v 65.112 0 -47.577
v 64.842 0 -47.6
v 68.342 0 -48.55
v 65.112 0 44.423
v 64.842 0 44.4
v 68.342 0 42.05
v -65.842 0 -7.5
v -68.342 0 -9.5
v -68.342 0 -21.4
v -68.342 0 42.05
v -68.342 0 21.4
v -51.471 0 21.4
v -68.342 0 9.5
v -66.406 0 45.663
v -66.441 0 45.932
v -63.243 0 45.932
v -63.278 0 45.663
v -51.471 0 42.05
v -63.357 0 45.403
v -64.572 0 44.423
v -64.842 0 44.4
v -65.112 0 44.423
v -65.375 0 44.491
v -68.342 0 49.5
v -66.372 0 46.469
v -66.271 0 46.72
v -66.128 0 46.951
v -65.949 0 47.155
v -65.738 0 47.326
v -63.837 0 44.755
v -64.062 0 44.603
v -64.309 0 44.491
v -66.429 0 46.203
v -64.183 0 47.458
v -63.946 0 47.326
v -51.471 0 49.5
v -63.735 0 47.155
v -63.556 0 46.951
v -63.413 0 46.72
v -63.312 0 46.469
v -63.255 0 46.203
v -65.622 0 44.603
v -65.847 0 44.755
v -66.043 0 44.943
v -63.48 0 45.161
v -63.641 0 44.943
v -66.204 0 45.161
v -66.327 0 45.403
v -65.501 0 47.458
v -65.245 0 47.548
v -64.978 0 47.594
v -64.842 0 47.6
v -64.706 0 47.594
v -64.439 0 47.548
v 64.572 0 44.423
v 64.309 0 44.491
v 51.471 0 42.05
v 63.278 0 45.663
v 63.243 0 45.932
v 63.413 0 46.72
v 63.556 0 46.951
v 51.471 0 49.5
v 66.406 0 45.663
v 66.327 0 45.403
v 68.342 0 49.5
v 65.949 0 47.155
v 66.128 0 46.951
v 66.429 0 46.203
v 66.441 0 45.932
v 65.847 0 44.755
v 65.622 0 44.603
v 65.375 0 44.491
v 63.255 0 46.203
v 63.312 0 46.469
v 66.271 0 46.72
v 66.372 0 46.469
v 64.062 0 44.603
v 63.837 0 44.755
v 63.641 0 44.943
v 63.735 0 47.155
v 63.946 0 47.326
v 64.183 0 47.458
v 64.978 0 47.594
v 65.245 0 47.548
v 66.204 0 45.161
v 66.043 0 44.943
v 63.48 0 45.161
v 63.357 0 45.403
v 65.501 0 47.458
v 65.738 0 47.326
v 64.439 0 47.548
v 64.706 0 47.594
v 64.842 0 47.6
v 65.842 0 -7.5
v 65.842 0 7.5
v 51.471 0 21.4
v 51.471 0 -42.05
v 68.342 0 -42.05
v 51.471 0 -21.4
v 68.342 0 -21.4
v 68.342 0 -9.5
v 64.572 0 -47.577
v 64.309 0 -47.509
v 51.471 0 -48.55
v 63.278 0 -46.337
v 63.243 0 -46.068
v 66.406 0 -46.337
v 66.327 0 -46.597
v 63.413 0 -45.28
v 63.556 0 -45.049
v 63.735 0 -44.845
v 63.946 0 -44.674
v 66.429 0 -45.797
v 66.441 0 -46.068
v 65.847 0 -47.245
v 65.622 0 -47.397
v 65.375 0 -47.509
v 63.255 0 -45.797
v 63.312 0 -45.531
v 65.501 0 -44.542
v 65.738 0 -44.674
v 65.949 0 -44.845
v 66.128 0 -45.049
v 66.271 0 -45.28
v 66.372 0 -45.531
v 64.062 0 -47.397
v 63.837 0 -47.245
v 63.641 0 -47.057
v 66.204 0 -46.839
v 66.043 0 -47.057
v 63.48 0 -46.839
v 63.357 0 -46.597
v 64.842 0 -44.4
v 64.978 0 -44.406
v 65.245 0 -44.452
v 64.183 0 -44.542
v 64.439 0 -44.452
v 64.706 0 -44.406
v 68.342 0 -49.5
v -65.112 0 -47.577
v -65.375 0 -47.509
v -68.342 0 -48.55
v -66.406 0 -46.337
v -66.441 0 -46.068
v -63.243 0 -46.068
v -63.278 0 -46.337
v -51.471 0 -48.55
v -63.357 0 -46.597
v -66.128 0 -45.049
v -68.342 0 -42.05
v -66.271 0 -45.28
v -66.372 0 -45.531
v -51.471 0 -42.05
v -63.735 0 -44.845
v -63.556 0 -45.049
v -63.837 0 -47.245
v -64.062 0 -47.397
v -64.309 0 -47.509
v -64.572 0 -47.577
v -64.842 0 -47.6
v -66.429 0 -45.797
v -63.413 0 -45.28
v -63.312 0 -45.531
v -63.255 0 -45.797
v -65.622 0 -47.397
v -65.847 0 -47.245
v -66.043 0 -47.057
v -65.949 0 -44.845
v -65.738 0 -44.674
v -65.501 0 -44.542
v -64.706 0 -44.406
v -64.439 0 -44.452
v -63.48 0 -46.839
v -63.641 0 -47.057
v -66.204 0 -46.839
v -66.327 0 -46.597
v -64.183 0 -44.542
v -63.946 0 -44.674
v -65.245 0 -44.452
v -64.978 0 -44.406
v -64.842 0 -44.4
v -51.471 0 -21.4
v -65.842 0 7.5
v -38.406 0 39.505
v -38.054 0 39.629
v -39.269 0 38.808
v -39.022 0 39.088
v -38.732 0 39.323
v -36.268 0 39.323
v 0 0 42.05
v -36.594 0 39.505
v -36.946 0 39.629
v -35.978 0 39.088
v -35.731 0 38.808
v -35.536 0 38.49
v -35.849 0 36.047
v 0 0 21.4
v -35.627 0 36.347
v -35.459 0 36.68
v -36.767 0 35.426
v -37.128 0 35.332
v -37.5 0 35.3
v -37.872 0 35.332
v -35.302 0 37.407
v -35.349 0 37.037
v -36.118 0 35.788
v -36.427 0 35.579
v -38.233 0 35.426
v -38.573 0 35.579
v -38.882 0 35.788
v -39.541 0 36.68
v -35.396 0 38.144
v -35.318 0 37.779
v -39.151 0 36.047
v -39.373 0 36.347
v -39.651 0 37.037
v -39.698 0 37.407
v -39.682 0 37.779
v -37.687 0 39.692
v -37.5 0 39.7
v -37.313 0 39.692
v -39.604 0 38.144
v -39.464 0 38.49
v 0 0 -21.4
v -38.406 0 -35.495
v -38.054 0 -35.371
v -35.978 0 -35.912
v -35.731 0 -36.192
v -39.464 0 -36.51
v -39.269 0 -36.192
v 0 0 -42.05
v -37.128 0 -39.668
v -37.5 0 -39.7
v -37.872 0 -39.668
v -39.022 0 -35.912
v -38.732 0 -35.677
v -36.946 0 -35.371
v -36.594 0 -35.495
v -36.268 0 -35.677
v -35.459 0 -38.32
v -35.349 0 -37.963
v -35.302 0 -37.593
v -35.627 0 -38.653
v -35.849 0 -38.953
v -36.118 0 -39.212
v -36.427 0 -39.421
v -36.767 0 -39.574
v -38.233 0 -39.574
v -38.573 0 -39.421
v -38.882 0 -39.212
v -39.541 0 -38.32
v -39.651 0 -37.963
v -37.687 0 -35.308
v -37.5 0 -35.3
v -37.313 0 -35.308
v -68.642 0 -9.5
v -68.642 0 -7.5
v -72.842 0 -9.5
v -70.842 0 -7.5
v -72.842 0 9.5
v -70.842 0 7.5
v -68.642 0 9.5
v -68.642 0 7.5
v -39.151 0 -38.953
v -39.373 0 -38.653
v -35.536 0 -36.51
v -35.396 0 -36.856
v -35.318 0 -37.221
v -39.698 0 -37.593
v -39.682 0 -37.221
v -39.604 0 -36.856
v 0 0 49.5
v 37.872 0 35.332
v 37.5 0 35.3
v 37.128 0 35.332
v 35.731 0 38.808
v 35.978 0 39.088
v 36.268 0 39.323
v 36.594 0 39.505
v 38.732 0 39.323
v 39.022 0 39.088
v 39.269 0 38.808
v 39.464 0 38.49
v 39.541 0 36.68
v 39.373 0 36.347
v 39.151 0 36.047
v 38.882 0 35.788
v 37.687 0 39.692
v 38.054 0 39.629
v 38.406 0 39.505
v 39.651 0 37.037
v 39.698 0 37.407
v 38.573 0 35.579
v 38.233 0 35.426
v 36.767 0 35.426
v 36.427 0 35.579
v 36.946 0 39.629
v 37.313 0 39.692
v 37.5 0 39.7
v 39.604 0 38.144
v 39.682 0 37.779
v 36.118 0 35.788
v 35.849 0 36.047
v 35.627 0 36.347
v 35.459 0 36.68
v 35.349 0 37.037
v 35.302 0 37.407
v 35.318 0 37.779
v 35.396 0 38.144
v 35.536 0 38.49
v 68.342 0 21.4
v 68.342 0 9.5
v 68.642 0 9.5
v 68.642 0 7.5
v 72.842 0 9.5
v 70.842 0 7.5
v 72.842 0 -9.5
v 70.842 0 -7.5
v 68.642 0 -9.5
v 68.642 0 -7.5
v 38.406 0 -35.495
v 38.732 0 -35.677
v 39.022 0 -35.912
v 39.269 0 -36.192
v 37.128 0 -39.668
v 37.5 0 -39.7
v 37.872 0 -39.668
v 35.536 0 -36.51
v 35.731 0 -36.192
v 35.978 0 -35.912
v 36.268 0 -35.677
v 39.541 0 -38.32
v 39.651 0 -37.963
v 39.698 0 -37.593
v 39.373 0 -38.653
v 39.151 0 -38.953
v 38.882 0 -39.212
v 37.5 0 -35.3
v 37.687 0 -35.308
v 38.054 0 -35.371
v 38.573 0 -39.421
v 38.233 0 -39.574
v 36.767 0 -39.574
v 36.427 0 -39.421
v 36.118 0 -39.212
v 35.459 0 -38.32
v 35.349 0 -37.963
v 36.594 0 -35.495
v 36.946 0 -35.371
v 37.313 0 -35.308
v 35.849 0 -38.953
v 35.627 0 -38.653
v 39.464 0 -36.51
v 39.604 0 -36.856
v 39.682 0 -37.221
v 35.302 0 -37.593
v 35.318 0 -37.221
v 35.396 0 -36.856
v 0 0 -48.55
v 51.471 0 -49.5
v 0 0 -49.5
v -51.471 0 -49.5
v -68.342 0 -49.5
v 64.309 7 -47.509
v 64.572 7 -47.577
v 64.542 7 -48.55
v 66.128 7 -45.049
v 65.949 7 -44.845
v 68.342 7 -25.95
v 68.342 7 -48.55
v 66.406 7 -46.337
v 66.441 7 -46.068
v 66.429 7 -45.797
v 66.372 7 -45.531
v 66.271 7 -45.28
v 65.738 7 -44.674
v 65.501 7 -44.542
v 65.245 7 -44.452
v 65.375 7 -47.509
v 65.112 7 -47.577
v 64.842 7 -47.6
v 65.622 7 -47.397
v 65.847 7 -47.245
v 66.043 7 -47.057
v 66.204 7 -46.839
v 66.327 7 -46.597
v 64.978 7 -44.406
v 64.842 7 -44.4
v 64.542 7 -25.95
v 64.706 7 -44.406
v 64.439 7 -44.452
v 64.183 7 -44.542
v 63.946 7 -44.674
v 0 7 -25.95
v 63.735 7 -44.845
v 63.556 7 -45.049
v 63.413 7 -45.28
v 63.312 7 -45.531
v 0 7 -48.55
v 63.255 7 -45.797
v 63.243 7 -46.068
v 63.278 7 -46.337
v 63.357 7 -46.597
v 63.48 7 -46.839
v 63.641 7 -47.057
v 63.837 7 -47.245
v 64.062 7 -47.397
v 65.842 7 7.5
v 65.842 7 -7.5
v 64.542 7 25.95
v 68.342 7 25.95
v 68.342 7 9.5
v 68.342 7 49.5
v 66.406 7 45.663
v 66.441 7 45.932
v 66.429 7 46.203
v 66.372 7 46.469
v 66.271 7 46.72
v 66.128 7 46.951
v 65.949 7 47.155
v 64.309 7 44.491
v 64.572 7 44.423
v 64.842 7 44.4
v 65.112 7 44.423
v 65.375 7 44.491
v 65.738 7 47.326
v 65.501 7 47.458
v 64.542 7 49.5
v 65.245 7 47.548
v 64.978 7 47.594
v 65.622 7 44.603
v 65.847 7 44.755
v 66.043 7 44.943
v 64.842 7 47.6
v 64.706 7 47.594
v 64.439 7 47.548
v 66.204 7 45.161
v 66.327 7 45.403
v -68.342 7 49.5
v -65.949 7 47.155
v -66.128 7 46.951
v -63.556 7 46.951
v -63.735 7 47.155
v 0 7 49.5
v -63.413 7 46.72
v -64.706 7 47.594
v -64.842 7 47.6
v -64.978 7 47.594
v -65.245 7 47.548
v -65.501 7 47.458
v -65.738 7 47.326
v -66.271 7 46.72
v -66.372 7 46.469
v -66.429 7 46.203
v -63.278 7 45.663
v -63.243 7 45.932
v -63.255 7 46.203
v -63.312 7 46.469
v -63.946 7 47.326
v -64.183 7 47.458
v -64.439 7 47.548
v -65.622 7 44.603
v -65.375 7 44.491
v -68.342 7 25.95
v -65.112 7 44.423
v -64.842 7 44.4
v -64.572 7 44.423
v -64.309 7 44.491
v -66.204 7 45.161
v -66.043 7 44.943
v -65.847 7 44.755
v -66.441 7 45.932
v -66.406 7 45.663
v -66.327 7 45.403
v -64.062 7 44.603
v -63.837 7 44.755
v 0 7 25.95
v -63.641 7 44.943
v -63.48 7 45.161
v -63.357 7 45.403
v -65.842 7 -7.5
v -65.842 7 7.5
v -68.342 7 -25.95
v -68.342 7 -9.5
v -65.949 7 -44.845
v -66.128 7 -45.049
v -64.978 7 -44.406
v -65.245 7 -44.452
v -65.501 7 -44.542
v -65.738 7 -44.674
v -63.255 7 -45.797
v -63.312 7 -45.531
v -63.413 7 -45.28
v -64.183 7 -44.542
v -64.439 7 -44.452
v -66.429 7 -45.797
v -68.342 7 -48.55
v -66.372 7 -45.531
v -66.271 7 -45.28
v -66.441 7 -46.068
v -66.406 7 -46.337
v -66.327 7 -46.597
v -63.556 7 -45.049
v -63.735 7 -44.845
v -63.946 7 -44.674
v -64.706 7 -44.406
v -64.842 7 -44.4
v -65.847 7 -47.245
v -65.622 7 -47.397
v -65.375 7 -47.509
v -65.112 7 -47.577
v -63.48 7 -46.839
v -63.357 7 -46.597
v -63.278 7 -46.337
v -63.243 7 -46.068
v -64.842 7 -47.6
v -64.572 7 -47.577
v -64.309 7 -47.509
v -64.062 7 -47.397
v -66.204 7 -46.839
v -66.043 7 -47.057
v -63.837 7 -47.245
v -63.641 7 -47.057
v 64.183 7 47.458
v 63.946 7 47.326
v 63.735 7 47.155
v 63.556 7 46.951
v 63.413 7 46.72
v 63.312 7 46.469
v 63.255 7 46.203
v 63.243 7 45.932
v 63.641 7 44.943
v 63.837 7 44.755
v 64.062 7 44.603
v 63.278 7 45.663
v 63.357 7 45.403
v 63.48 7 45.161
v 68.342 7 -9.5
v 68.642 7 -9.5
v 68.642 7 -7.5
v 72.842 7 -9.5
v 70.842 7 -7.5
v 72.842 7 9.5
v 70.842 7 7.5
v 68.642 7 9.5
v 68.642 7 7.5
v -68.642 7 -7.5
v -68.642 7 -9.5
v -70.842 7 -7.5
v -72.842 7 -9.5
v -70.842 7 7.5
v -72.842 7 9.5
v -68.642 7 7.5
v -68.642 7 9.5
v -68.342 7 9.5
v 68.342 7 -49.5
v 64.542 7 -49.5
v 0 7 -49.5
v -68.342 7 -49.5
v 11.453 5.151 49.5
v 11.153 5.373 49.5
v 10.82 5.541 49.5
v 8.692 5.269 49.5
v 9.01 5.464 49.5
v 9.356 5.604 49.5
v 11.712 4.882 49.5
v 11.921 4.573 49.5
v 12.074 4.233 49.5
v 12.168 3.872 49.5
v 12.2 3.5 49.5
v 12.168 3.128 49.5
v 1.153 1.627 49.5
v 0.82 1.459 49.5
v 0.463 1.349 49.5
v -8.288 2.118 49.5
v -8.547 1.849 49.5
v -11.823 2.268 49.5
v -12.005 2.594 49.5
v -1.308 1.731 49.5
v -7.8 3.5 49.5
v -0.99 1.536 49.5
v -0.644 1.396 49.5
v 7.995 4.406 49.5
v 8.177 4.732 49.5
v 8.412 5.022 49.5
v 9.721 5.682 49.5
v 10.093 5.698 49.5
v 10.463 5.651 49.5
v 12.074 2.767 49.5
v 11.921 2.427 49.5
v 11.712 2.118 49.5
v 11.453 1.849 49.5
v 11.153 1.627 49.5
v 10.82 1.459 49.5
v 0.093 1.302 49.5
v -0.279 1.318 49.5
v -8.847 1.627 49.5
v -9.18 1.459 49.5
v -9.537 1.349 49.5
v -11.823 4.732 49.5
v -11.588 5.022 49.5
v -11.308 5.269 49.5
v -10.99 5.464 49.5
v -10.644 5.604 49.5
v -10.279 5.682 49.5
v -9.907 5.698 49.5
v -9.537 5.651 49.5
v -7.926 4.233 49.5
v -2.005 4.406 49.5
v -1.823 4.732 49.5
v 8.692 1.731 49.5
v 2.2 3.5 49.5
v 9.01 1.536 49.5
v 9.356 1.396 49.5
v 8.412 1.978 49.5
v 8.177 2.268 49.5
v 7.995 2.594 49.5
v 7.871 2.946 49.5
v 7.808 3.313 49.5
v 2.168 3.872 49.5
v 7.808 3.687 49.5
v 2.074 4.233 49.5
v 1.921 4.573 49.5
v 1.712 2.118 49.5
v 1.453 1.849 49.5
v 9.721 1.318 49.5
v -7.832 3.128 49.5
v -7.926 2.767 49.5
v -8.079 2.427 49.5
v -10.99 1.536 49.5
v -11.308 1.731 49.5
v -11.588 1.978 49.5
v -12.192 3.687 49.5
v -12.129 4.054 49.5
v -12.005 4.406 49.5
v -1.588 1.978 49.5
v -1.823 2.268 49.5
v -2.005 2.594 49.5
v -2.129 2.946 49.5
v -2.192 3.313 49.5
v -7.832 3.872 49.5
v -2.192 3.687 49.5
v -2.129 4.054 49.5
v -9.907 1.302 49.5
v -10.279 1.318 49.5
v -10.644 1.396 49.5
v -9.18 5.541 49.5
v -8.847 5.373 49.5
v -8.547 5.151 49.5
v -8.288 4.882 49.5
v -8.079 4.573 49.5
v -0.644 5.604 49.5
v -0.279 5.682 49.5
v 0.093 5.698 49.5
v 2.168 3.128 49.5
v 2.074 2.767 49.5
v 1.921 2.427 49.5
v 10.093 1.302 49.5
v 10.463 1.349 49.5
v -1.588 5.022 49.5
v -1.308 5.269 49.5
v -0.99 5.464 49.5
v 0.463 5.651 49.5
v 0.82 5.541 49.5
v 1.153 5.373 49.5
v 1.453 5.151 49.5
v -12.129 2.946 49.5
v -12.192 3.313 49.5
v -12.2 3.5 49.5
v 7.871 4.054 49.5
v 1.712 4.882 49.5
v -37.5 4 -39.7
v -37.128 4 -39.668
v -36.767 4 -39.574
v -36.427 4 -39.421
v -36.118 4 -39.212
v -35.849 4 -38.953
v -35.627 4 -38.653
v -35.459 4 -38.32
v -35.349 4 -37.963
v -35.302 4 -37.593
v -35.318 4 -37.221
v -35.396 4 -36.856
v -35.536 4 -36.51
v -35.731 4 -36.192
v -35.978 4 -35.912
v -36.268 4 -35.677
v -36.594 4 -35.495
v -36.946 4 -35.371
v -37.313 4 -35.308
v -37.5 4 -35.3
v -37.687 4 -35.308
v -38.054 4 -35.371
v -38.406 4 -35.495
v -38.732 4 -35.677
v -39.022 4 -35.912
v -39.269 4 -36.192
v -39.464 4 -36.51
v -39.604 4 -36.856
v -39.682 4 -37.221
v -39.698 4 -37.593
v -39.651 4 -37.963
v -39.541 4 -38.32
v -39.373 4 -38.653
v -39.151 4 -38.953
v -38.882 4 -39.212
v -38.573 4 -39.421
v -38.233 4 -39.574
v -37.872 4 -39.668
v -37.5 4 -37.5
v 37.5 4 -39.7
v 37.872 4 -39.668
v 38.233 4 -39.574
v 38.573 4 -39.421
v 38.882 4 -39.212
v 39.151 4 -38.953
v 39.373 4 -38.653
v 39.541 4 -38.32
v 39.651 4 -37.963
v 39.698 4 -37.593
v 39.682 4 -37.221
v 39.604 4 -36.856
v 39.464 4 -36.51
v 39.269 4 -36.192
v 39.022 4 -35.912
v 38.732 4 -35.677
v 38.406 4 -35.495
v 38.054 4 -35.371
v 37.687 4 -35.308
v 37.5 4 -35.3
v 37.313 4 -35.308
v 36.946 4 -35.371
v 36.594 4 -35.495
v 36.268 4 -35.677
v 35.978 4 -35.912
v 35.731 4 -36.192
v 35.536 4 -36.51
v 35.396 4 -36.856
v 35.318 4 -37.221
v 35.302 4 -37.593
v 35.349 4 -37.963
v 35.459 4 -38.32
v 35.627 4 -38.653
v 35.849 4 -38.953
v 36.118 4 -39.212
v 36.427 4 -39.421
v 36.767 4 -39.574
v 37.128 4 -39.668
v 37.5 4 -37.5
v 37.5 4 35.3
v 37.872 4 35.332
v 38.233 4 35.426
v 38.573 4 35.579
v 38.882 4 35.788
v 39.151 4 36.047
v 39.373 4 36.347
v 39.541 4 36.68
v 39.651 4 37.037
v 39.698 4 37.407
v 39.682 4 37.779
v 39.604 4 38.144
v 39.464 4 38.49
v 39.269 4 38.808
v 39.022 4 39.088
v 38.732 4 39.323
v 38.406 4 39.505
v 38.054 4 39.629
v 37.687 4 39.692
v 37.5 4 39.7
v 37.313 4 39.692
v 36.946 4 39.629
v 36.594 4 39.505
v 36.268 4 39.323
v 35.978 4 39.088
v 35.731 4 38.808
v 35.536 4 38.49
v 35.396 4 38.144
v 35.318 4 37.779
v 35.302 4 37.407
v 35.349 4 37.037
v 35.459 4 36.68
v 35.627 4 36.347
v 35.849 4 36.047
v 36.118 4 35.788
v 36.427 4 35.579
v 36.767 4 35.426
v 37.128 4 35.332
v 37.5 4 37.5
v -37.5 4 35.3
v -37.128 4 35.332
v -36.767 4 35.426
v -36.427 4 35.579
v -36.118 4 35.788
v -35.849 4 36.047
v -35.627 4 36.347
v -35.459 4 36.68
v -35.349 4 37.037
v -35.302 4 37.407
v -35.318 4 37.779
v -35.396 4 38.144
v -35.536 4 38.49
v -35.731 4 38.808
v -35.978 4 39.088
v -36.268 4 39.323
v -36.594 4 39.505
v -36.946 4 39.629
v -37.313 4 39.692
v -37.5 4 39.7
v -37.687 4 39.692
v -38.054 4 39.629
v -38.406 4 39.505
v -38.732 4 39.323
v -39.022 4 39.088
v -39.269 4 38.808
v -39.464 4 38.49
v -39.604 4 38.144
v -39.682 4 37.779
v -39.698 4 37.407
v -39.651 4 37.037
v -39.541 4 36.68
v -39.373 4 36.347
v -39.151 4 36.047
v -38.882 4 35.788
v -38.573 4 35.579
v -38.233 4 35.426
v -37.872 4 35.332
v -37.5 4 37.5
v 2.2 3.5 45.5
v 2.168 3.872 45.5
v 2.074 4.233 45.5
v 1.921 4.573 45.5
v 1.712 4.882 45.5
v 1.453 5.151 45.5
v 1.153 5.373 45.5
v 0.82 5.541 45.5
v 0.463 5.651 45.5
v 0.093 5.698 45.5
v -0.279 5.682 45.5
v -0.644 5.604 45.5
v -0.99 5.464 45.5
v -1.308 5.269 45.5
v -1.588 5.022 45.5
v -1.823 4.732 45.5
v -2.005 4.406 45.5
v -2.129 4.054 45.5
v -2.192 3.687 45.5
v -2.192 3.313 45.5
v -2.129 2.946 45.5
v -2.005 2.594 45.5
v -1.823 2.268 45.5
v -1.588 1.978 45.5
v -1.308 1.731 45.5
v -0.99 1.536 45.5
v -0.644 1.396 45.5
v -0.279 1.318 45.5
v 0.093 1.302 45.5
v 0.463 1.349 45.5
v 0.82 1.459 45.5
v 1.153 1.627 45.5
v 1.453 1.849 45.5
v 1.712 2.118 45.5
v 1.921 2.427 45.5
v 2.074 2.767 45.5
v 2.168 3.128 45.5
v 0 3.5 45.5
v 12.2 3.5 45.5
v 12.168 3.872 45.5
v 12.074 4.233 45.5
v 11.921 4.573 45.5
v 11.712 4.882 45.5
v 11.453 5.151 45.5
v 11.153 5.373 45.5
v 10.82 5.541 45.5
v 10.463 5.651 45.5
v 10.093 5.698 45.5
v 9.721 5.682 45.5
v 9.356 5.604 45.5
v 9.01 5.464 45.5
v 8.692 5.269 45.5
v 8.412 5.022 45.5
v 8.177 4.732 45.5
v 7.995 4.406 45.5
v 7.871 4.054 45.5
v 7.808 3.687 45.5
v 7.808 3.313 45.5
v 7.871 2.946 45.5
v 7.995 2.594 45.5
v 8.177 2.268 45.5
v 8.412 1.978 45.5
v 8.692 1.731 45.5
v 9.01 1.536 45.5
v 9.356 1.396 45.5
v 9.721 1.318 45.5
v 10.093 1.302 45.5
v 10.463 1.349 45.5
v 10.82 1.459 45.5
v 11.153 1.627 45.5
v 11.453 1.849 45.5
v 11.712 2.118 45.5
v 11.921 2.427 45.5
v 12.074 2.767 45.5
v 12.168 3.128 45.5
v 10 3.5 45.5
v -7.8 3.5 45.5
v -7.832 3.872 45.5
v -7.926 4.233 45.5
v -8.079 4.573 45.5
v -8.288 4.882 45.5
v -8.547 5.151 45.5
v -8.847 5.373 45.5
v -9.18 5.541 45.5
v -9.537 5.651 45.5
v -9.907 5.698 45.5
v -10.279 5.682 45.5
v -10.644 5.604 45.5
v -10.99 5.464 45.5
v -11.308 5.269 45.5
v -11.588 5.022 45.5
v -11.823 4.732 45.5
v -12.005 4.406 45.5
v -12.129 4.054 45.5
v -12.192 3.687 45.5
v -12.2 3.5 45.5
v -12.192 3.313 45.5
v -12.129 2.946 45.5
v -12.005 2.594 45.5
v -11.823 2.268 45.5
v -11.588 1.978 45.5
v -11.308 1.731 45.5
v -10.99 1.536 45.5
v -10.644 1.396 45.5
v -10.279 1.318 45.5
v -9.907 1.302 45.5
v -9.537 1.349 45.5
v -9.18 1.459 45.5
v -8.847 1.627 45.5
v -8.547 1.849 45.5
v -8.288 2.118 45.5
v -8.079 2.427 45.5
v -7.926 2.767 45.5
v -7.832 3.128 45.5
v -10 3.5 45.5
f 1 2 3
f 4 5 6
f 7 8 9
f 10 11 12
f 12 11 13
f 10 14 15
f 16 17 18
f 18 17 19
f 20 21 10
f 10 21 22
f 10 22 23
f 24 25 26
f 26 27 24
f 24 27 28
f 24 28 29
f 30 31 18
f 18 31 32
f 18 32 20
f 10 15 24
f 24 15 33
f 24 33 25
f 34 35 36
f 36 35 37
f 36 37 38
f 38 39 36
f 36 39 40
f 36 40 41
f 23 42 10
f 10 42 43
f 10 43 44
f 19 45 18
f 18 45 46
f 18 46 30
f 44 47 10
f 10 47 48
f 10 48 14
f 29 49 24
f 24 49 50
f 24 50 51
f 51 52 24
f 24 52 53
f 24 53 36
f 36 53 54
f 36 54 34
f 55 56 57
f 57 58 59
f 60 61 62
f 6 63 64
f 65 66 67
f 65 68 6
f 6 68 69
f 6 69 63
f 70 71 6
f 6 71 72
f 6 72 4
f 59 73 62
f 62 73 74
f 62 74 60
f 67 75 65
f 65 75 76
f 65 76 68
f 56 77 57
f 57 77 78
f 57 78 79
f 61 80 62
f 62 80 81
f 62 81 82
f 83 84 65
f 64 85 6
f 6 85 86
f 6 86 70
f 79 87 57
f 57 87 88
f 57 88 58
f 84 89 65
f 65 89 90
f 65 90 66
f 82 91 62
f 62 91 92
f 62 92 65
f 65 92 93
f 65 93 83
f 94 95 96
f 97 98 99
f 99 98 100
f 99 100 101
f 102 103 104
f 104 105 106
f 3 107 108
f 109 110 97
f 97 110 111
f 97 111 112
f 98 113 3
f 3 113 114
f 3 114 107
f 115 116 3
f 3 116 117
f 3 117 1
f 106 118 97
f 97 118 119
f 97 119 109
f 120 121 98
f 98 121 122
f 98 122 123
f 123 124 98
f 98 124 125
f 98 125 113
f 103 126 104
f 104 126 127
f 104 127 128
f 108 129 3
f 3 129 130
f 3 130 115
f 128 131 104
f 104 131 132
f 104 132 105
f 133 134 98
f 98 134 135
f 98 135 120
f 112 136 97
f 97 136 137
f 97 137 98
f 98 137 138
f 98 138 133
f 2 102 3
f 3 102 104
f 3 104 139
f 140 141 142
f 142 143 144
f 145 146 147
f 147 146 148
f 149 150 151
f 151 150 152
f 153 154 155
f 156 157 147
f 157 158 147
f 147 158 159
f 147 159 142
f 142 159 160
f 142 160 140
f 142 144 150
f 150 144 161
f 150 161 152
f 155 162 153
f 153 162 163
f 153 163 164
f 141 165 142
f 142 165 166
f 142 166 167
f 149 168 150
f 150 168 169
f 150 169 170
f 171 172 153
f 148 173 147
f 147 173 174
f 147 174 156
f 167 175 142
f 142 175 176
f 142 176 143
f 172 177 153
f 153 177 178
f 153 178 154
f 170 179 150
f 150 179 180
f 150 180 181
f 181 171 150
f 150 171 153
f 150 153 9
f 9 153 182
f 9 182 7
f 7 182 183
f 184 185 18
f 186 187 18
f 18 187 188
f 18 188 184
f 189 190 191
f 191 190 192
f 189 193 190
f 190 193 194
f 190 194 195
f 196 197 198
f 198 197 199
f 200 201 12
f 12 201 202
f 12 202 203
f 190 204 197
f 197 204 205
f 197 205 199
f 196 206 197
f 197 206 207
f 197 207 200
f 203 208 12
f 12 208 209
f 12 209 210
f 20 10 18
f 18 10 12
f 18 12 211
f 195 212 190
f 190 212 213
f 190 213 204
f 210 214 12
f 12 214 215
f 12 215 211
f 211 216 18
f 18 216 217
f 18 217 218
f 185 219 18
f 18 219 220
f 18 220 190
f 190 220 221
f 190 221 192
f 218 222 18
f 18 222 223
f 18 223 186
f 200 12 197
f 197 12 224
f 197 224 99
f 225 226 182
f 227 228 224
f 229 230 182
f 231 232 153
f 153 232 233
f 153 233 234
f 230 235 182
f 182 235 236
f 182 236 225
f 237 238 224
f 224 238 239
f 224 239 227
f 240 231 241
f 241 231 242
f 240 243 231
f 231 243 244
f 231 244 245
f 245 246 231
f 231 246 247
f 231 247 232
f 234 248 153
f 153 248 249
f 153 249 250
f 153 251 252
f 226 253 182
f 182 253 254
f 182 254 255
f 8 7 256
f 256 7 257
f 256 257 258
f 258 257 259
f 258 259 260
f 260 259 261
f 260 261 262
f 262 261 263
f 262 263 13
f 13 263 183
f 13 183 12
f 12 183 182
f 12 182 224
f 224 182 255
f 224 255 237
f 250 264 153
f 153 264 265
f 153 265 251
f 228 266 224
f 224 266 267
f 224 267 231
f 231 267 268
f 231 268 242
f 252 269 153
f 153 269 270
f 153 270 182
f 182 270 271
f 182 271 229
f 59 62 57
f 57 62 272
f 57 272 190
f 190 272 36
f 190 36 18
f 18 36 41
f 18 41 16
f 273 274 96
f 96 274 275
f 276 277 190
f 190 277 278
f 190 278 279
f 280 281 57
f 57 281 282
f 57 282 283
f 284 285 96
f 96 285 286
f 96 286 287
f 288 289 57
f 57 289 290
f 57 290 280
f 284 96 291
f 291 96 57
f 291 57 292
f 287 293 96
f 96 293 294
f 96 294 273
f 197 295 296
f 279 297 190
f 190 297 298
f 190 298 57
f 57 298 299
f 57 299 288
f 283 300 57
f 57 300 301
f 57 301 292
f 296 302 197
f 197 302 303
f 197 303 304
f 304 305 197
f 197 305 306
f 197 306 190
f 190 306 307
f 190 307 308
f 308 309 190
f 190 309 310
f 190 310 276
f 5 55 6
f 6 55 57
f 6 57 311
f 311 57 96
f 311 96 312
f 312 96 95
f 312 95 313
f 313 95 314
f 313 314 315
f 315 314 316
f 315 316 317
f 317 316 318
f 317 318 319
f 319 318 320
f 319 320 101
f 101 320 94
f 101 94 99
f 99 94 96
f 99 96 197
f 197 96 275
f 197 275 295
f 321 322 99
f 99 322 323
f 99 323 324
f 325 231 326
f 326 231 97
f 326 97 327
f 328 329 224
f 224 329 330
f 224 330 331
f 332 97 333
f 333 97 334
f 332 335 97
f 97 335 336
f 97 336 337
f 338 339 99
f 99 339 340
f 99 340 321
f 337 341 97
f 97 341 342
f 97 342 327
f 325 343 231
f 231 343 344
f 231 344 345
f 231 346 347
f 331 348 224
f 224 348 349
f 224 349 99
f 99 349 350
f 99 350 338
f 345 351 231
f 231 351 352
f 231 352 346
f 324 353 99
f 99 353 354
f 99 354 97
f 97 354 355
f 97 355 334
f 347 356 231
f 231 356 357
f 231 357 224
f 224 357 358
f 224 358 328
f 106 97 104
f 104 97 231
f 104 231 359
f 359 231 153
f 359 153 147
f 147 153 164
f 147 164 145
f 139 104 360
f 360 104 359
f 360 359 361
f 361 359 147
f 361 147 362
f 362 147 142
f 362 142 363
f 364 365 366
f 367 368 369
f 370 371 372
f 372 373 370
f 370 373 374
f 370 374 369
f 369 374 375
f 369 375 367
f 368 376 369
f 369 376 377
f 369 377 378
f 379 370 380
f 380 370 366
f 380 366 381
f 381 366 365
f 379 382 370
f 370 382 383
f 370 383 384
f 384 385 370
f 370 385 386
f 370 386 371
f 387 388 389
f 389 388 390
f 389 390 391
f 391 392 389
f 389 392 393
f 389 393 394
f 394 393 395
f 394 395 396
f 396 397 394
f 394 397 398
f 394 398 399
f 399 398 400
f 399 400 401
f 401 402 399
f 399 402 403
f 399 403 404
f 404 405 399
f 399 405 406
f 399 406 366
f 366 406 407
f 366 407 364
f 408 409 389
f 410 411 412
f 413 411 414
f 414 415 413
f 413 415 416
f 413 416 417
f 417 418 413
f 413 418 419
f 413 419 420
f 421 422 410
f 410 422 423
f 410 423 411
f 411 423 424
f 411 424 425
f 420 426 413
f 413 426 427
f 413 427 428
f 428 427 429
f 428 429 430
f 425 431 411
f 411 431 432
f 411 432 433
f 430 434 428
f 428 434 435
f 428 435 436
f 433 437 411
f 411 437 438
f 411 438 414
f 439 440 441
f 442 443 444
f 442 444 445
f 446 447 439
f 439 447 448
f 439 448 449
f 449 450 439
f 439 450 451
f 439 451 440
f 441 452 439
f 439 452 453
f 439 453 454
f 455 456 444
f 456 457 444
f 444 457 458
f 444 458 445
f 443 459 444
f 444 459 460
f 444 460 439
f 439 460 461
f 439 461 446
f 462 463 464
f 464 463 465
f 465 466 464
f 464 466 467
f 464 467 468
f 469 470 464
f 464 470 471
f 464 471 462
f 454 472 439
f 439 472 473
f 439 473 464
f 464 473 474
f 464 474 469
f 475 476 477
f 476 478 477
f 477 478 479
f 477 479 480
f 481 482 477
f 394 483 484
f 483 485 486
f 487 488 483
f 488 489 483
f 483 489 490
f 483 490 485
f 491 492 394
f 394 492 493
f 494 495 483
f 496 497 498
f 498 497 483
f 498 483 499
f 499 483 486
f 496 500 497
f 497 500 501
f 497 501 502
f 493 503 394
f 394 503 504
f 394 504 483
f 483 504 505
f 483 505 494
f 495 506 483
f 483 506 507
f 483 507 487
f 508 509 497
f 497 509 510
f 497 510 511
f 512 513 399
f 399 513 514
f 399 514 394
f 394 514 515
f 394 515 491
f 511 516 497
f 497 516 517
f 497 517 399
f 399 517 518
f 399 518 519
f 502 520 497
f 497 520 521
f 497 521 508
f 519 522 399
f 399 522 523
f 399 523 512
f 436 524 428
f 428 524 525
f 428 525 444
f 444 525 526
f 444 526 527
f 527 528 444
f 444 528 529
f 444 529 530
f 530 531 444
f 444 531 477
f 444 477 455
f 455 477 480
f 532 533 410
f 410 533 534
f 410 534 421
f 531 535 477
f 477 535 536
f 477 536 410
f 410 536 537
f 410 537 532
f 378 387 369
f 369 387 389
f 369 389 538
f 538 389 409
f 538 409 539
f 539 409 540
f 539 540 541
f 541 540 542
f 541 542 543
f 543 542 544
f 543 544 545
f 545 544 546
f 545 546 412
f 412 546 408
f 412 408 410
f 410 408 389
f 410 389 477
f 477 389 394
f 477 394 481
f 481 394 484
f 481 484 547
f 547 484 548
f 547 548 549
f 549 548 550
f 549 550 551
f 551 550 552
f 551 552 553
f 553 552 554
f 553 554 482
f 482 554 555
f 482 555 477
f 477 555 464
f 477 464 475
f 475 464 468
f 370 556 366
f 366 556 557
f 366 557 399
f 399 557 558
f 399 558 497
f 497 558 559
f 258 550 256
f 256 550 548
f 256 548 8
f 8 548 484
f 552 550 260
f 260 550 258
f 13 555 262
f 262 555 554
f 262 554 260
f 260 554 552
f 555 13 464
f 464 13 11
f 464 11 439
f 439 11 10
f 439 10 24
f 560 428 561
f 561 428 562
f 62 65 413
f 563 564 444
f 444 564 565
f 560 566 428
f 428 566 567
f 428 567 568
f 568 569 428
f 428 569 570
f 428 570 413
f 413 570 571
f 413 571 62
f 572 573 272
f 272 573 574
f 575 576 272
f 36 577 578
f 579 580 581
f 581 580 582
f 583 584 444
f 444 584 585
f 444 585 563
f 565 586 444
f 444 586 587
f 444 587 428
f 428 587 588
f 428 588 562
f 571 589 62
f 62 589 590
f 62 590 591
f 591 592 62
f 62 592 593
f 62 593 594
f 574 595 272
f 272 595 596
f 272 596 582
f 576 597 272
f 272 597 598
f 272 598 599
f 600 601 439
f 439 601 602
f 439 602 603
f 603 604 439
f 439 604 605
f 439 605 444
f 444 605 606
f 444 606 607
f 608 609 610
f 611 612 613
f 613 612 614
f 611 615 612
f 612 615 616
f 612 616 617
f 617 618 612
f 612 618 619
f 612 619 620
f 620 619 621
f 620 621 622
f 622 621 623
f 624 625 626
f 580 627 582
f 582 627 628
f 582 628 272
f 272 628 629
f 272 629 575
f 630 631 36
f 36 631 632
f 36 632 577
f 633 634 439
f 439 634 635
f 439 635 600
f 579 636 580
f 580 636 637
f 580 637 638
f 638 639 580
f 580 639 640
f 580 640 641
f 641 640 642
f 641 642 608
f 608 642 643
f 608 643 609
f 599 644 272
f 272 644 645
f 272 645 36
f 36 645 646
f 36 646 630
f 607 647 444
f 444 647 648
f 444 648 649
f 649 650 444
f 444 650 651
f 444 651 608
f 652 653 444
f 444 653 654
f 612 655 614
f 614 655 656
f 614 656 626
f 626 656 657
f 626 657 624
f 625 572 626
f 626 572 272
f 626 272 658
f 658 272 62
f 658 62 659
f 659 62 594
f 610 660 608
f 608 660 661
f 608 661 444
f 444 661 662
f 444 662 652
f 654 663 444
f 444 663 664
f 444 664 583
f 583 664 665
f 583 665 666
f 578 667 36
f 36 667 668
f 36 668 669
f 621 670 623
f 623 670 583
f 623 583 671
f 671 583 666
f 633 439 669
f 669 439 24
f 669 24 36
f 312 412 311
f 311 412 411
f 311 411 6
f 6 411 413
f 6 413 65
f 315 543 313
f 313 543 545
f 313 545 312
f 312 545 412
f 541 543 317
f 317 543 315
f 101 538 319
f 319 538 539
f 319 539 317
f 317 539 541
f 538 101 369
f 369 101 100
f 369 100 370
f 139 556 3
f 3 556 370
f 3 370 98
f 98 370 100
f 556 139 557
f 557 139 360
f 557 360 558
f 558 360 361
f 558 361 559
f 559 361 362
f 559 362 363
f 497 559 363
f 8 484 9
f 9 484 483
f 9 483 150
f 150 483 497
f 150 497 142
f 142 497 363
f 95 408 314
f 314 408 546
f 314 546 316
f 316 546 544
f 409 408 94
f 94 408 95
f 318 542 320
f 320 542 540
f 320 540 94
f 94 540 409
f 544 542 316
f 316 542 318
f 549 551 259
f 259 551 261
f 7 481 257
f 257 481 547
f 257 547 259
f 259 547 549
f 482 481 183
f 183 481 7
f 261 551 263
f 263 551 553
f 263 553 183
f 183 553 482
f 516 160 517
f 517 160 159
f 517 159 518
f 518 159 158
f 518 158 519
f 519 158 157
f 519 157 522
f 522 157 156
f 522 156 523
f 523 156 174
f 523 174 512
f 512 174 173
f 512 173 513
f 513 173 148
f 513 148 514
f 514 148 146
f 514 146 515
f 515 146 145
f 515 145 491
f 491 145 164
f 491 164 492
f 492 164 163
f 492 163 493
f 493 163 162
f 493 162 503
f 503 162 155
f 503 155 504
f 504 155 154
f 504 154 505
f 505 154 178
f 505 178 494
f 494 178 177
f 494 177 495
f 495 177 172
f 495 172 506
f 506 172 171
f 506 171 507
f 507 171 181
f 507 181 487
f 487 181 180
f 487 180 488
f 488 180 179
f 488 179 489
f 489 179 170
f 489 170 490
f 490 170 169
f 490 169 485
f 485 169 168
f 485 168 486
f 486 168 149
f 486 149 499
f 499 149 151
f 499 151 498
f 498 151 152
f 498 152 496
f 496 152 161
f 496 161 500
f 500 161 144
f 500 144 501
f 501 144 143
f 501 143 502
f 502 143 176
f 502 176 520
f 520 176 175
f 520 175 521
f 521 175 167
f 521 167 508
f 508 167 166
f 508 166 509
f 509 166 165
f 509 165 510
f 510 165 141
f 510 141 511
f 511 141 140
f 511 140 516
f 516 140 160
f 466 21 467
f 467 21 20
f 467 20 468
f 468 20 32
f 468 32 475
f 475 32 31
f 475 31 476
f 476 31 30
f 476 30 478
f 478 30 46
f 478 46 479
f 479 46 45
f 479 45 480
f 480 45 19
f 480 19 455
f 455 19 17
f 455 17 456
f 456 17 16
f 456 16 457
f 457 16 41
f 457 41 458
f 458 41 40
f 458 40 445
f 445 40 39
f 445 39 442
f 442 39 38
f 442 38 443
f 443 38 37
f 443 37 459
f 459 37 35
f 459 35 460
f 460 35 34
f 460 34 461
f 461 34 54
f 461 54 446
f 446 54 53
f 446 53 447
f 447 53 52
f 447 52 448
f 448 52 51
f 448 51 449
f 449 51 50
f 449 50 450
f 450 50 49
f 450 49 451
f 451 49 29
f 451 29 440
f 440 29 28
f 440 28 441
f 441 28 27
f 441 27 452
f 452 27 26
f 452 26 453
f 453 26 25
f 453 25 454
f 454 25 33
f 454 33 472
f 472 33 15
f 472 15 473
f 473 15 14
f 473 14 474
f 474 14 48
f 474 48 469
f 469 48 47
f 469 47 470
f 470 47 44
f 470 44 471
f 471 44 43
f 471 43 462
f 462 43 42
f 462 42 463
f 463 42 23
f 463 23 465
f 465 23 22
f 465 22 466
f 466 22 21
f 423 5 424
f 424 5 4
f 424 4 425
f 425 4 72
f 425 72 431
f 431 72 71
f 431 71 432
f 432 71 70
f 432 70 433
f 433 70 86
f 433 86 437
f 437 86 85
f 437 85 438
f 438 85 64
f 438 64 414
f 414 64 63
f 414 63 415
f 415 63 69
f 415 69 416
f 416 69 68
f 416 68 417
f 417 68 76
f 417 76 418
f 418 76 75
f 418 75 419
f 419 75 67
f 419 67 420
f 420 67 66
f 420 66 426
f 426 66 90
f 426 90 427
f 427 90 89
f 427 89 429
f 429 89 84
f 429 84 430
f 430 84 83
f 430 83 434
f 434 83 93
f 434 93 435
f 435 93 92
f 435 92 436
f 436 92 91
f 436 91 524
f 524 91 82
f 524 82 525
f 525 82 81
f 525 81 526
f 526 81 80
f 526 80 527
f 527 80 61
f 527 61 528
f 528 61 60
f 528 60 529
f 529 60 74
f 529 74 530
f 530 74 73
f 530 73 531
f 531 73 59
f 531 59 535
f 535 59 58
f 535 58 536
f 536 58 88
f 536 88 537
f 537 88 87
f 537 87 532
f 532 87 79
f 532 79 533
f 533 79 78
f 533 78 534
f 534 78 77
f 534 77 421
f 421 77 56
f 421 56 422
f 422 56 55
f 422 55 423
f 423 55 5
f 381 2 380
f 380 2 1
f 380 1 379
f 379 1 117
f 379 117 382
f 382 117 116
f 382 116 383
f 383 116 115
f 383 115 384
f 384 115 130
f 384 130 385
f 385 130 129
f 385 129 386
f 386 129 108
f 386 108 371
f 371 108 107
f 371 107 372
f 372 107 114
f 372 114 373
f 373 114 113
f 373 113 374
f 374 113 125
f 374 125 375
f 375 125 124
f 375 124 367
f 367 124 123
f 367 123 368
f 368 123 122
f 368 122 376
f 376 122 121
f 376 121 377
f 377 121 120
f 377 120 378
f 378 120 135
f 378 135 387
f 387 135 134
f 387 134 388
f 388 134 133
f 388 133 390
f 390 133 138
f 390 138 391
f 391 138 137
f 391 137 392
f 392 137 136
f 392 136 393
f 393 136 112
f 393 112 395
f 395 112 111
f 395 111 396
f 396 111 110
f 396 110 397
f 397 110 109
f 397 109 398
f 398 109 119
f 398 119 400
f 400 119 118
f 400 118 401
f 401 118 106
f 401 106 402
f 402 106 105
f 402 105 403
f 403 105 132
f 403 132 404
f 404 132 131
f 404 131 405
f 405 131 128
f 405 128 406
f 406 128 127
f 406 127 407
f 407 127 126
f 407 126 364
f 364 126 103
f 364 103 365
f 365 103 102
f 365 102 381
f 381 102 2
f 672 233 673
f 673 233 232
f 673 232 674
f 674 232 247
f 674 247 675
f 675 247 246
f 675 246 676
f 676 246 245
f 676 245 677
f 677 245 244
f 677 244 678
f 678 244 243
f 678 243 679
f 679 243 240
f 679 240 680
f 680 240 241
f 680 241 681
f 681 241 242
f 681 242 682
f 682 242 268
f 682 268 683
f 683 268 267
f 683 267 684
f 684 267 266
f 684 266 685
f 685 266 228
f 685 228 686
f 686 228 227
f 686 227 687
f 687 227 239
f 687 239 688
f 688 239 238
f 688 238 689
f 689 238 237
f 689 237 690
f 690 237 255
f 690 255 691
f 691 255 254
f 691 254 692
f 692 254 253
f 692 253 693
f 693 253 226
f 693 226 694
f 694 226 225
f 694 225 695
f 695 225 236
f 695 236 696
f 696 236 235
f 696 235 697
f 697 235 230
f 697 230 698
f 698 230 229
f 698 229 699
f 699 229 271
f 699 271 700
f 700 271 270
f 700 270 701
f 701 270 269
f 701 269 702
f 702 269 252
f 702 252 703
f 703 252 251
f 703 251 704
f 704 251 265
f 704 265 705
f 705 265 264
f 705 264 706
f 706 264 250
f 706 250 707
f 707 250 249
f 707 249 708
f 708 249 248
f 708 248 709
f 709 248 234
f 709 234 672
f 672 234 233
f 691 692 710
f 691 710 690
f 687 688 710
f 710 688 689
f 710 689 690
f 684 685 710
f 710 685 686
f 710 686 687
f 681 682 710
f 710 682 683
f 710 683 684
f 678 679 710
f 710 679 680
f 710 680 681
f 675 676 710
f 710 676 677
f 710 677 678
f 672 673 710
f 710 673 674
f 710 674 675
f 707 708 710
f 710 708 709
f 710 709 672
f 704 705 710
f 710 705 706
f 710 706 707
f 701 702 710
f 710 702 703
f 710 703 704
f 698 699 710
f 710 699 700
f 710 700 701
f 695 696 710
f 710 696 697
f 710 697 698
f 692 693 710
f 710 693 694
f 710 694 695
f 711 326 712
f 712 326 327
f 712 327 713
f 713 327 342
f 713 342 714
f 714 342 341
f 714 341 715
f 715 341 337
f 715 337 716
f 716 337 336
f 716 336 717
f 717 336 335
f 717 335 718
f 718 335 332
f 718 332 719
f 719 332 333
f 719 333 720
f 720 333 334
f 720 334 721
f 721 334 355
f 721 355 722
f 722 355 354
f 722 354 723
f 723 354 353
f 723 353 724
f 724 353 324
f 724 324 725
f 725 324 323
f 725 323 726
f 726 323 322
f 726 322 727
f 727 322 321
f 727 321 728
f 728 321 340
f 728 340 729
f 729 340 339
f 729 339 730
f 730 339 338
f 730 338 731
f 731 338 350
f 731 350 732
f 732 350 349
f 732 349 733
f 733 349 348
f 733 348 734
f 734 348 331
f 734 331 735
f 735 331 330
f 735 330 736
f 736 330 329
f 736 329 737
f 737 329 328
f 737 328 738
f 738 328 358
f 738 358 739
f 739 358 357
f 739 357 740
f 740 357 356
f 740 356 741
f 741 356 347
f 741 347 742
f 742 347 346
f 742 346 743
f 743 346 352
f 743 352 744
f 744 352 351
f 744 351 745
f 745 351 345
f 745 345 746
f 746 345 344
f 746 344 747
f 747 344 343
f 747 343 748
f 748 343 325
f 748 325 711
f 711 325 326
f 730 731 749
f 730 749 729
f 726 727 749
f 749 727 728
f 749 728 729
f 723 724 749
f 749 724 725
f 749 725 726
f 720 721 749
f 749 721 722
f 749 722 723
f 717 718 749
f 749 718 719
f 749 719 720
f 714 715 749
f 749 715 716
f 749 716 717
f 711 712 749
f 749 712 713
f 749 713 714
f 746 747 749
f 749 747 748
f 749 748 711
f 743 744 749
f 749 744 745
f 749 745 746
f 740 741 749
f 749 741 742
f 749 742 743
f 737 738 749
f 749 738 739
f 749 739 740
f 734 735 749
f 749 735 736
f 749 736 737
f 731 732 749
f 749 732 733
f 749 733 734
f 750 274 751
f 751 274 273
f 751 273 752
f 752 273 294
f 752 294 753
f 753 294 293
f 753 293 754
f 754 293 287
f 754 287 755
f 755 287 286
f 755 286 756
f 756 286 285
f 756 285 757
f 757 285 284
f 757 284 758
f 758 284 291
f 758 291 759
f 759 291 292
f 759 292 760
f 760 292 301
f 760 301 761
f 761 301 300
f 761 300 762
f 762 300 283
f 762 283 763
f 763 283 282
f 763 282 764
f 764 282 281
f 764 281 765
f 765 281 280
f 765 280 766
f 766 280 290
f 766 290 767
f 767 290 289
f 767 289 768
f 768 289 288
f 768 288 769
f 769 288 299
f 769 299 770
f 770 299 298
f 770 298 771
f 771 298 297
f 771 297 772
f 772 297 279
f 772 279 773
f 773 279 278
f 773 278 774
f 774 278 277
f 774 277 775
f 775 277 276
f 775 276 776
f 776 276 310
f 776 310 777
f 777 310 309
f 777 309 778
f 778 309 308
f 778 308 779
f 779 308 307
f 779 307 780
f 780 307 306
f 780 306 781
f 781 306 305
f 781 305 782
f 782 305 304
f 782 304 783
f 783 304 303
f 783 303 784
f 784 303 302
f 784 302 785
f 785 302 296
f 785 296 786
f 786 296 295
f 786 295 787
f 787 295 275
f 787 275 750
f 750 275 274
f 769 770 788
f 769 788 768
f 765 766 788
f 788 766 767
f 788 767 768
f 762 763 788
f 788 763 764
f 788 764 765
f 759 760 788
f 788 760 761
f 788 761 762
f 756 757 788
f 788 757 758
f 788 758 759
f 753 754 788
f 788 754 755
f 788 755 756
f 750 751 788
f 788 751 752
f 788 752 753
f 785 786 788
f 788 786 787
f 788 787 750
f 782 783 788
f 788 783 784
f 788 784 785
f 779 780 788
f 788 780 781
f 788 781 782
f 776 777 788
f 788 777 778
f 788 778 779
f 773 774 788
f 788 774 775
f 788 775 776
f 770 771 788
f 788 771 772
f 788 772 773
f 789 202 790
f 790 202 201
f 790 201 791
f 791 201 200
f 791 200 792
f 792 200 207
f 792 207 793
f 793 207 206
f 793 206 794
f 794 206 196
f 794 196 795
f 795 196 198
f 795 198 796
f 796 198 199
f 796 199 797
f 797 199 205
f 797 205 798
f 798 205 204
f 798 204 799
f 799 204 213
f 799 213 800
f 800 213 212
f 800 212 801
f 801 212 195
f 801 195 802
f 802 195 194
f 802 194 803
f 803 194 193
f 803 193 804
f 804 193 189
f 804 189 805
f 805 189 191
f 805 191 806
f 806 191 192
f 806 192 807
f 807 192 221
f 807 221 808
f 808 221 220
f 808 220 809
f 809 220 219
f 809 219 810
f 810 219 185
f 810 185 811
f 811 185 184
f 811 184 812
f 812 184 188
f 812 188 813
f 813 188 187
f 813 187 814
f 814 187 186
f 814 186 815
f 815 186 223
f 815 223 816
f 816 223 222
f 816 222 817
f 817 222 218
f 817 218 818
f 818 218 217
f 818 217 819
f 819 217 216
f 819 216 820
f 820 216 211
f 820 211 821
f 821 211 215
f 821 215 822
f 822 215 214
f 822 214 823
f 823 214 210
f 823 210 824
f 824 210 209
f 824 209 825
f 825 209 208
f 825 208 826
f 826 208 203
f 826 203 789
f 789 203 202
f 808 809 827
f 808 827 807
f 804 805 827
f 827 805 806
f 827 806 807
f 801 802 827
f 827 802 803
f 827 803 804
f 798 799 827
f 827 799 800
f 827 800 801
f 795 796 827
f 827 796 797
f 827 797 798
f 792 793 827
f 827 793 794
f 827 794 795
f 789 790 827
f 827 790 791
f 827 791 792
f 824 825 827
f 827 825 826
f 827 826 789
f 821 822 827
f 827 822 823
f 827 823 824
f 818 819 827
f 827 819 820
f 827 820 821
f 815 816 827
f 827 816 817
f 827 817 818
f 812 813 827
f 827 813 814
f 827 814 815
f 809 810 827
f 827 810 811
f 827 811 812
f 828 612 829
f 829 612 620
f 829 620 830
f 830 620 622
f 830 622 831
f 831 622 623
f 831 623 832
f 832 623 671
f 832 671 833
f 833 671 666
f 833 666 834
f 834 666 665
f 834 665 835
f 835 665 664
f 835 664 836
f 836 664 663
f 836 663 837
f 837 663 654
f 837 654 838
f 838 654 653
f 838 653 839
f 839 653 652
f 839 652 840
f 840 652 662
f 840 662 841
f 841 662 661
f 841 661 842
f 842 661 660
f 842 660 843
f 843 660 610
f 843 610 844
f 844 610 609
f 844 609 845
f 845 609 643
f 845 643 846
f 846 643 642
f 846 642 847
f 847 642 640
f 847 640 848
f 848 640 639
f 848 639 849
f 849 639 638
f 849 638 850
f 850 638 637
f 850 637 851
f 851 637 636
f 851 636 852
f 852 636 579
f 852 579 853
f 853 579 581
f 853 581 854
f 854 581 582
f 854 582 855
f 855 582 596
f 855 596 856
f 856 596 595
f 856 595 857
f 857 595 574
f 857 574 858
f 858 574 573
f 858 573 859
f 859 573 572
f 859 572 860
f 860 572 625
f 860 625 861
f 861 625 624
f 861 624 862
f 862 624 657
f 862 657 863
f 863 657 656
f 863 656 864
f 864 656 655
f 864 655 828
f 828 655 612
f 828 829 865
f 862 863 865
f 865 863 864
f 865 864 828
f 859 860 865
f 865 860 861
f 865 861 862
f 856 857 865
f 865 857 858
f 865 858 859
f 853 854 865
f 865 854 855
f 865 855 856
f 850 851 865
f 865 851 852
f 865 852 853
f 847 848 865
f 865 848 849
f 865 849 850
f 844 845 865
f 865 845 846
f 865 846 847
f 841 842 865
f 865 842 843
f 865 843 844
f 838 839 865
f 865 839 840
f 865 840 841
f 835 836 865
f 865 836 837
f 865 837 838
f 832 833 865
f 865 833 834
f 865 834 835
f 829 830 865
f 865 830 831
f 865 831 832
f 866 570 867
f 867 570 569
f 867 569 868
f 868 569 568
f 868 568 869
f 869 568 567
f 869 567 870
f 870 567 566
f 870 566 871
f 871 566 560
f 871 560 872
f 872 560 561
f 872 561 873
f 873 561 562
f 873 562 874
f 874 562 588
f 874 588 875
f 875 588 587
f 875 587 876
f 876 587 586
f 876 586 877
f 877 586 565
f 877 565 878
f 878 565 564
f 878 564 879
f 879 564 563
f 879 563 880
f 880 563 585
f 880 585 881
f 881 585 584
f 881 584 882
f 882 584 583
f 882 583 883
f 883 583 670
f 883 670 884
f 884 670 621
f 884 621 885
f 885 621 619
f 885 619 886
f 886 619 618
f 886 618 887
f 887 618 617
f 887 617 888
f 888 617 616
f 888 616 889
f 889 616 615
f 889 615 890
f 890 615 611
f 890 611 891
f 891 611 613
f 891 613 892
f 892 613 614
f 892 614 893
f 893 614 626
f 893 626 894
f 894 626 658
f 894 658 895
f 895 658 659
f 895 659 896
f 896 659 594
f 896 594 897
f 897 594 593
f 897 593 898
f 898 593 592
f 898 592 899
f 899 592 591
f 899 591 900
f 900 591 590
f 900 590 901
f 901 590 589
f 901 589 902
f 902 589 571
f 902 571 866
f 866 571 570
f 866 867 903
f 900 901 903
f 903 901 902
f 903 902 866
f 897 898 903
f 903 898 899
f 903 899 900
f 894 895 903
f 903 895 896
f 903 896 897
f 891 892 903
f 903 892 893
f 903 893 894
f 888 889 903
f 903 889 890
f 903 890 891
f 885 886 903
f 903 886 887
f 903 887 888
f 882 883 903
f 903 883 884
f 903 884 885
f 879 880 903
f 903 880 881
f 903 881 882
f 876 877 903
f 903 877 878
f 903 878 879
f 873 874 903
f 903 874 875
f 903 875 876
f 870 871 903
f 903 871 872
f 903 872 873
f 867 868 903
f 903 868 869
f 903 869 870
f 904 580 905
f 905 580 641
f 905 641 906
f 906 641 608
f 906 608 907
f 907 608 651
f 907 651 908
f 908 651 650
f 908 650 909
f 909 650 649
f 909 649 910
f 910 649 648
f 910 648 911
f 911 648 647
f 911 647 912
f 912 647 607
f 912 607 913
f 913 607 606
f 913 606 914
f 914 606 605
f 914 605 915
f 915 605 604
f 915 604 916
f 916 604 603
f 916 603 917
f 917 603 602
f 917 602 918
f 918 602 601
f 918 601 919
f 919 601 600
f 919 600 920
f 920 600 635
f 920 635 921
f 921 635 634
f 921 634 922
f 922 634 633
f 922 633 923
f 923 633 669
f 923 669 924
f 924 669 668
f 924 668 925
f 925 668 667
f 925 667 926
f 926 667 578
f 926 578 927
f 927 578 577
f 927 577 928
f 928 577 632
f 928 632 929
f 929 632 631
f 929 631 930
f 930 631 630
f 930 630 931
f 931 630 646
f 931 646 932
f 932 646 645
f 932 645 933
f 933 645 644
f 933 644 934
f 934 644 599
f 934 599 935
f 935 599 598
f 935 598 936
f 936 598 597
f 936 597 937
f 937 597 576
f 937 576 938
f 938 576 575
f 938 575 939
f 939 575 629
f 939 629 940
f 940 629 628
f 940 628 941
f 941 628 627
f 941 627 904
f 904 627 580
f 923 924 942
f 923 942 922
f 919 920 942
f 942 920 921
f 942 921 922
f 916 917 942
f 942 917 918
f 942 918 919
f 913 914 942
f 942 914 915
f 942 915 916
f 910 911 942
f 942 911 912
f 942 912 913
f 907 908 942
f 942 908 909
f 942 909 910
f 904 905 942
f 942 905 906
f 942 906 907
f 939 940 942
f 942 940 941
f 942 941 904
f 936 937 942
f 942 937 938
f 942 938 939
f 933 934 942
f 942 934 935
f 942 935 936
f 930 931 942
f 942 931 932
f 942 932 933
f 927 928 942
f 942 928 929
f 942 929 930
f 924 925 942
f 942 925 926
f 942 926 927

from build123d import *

# Parameters (mm, degrees)
SKETCH1_W           = 5
SKETCH1_H           = 15
BOSS_EXTRUDE1_DEPTH = 7
CUT_EXTRUDE3_REACH  = 90.347
SKETCH3_R           = 1.6
SKETCH3_4_R         = 2.2
CUT_EXTRUDE4_DEPTH  = 4
SKETCH4_R           = 2.2
CUT_EXTRUDE5_DEPTH  = 4


with BuildPart() as part:
    # Sketch1 → Boss-Extrude1 (new body)
    with BuildSketch(Plane(origin=(0, 0, 0), x_dir=(1, 0, 0), z_dir=(0, 1, 0))):
        Polygon((-68.342017383, -9.5), (-68.342017383, -49.5), (68.342017383, -49.5), (68.342017383, -9.5), (72.842017383, -9.5), (72.842017383, 9.5), (68.342017383, 9.5), (68.342017383, 49.5), (-68.342017383, 49.5), (-68.342017383, 9.5), (-72.842017383, 9.5), (-72.842017383, -9.5), align=None)
        with Locations((-68.342017383, 0)):
            Rectangle(SKETCH1_W, SKETCH1_H, mode=Mode.SUBTRACT)
        with Locations((68.342017383, 0)):
            Rectangle(SKETCH1_W, SKETCH1_H, mode=Mode.SUBTRACT)
    extrude(amount=BOSS_EXTRUDE1_DEPTH)

    # Sketch3 → Cut-Extrude3 (cut, up to next)
    with BuildSketch(Plane(origin=(0, 0, 0), x_dir=(1, 0, 0), z_dir=(0, 1, 0)), mode=Mode.PRIVATE) as cut_extrude3_sk1:
        with Locations((64.842017383, -46)):
            Circle(SKETCH3_R)
    cut_extrude3_tool1 = extrude(cut_extrude3_sk1.sketch, amount=CUT_EXTRUDE3_REACH, mode=Mode.PRIVATE) & part.part
    # Sketch3 → Cut-Extrude3 (cut, up to next)
    with BuildSketch(Plane(origin=(0, 0, 0), x_dir=(1, 0, 0), z_dir=(0, 1, 0)), mode=Mode.PRIVATE) as cut_extrude3_sk2:
        with Locations((64.842017383, 46)):
            Circle(SKETCH3_R)
    cut_extrude3_tool2 = extrude(cut_extrude3_sk2.sketch, amount=CUT_EXTRUDE3_REACH, mode=Mode.PRIVATE) & part.part
    # Sketch3 → Cut-Extrude3 (cut, up to next)
    with BuildSketch(Plane(origin=(0, 0, 0), x_dir=(1, 0, 0), z_dir=(0, 1, 0)), mode=Mode.PRIVATE) as cut_extrude3_sk3:
        with Locations((-64.842017383, 46)):
            Circle(SKETCH3_R)
    cut_extrude3_tool3 = extrude(cut_extrude3_sk3.sketch, amount=CUT_EXTRUDE3_REACH, mode=Mode.PRIVATE) & part.part
    # Sketch3 → Cut-Extrude3 (cut, up to next)
    with BuildSketch(Plane(origin=(0, 0, 0), x_dir=(1, 0, 0), z_dir=(0, 1, 0)), mode=Mode.PRIVATE) as cut_extrude3_sk4:
        with Locations((-64.842017383, -46)):
            Circle(SKETCH3_R)
    cut_extrude3_tool4 = extrude(cut_extrude3_sk4.sketch, amount=CUT_EXTRUDE3_REACH, mode=Mode.PRIVATE) & part.part
    add(cut_extrude3_tool1.solids().sort_by_distance((64.842017, 0, 46))[0], mode=Mode.SUBTRACT)
    add(cut_extrude3_tool2.solids().sort_by_distance((64.842017, 0, -46))[0], mode=Mode.SUBTRACT)
    add(cut_extrude3_tool3.solids().sort_by_distance((-64.842017, 0, -46))[0], mode=Mode.SUBTRACT)
    add(cut_extrude3_tool4.solids().sort_by_distance((-64.842017, 0, 46))[0], mode=Mode.SUBTRACT)

    # Sketch3<4> → Cut-Extrude4 (cut)
    with BuildSketch(Plane(origin=(0, 0, 0), x_dir=(1, 0, 0), z_dir=(0, 1, 0))):
        with Locations((-37.5, 37.5)):
            Circle(SKETCH3_4_R)
        with Locations((37.5, 37.5)):
            Circle(SKETCH3_4_R)
        with Locations((37.5, -37.5)):
            Circle(SKETCH3_4_R)
        with Locations((-37.5, -37.5)):
            Circle(SKETCH3_4_R)
    extrude(amount=CUT_EXTRUDE4_DEPTH, mode=Mode.SUBTRACT)

    # Sketch4 → Cut-Extrude5 (cut)
    with BuildSketch(Plane.XY.offset(49.5)):
        with Locations((0, 3.5)):
            Circle(SKETCH4_R)
        with Locations((10, 3.5)):
            Circle(SKETCH4_R)
        with Locations((-10, 3.5)):
            Circle(SKETCH4_R)
    extrude(amount=-CUT_EXTRUDE5_DEPTH, mode=Mode.SUBTRACT)


solid = part.part
